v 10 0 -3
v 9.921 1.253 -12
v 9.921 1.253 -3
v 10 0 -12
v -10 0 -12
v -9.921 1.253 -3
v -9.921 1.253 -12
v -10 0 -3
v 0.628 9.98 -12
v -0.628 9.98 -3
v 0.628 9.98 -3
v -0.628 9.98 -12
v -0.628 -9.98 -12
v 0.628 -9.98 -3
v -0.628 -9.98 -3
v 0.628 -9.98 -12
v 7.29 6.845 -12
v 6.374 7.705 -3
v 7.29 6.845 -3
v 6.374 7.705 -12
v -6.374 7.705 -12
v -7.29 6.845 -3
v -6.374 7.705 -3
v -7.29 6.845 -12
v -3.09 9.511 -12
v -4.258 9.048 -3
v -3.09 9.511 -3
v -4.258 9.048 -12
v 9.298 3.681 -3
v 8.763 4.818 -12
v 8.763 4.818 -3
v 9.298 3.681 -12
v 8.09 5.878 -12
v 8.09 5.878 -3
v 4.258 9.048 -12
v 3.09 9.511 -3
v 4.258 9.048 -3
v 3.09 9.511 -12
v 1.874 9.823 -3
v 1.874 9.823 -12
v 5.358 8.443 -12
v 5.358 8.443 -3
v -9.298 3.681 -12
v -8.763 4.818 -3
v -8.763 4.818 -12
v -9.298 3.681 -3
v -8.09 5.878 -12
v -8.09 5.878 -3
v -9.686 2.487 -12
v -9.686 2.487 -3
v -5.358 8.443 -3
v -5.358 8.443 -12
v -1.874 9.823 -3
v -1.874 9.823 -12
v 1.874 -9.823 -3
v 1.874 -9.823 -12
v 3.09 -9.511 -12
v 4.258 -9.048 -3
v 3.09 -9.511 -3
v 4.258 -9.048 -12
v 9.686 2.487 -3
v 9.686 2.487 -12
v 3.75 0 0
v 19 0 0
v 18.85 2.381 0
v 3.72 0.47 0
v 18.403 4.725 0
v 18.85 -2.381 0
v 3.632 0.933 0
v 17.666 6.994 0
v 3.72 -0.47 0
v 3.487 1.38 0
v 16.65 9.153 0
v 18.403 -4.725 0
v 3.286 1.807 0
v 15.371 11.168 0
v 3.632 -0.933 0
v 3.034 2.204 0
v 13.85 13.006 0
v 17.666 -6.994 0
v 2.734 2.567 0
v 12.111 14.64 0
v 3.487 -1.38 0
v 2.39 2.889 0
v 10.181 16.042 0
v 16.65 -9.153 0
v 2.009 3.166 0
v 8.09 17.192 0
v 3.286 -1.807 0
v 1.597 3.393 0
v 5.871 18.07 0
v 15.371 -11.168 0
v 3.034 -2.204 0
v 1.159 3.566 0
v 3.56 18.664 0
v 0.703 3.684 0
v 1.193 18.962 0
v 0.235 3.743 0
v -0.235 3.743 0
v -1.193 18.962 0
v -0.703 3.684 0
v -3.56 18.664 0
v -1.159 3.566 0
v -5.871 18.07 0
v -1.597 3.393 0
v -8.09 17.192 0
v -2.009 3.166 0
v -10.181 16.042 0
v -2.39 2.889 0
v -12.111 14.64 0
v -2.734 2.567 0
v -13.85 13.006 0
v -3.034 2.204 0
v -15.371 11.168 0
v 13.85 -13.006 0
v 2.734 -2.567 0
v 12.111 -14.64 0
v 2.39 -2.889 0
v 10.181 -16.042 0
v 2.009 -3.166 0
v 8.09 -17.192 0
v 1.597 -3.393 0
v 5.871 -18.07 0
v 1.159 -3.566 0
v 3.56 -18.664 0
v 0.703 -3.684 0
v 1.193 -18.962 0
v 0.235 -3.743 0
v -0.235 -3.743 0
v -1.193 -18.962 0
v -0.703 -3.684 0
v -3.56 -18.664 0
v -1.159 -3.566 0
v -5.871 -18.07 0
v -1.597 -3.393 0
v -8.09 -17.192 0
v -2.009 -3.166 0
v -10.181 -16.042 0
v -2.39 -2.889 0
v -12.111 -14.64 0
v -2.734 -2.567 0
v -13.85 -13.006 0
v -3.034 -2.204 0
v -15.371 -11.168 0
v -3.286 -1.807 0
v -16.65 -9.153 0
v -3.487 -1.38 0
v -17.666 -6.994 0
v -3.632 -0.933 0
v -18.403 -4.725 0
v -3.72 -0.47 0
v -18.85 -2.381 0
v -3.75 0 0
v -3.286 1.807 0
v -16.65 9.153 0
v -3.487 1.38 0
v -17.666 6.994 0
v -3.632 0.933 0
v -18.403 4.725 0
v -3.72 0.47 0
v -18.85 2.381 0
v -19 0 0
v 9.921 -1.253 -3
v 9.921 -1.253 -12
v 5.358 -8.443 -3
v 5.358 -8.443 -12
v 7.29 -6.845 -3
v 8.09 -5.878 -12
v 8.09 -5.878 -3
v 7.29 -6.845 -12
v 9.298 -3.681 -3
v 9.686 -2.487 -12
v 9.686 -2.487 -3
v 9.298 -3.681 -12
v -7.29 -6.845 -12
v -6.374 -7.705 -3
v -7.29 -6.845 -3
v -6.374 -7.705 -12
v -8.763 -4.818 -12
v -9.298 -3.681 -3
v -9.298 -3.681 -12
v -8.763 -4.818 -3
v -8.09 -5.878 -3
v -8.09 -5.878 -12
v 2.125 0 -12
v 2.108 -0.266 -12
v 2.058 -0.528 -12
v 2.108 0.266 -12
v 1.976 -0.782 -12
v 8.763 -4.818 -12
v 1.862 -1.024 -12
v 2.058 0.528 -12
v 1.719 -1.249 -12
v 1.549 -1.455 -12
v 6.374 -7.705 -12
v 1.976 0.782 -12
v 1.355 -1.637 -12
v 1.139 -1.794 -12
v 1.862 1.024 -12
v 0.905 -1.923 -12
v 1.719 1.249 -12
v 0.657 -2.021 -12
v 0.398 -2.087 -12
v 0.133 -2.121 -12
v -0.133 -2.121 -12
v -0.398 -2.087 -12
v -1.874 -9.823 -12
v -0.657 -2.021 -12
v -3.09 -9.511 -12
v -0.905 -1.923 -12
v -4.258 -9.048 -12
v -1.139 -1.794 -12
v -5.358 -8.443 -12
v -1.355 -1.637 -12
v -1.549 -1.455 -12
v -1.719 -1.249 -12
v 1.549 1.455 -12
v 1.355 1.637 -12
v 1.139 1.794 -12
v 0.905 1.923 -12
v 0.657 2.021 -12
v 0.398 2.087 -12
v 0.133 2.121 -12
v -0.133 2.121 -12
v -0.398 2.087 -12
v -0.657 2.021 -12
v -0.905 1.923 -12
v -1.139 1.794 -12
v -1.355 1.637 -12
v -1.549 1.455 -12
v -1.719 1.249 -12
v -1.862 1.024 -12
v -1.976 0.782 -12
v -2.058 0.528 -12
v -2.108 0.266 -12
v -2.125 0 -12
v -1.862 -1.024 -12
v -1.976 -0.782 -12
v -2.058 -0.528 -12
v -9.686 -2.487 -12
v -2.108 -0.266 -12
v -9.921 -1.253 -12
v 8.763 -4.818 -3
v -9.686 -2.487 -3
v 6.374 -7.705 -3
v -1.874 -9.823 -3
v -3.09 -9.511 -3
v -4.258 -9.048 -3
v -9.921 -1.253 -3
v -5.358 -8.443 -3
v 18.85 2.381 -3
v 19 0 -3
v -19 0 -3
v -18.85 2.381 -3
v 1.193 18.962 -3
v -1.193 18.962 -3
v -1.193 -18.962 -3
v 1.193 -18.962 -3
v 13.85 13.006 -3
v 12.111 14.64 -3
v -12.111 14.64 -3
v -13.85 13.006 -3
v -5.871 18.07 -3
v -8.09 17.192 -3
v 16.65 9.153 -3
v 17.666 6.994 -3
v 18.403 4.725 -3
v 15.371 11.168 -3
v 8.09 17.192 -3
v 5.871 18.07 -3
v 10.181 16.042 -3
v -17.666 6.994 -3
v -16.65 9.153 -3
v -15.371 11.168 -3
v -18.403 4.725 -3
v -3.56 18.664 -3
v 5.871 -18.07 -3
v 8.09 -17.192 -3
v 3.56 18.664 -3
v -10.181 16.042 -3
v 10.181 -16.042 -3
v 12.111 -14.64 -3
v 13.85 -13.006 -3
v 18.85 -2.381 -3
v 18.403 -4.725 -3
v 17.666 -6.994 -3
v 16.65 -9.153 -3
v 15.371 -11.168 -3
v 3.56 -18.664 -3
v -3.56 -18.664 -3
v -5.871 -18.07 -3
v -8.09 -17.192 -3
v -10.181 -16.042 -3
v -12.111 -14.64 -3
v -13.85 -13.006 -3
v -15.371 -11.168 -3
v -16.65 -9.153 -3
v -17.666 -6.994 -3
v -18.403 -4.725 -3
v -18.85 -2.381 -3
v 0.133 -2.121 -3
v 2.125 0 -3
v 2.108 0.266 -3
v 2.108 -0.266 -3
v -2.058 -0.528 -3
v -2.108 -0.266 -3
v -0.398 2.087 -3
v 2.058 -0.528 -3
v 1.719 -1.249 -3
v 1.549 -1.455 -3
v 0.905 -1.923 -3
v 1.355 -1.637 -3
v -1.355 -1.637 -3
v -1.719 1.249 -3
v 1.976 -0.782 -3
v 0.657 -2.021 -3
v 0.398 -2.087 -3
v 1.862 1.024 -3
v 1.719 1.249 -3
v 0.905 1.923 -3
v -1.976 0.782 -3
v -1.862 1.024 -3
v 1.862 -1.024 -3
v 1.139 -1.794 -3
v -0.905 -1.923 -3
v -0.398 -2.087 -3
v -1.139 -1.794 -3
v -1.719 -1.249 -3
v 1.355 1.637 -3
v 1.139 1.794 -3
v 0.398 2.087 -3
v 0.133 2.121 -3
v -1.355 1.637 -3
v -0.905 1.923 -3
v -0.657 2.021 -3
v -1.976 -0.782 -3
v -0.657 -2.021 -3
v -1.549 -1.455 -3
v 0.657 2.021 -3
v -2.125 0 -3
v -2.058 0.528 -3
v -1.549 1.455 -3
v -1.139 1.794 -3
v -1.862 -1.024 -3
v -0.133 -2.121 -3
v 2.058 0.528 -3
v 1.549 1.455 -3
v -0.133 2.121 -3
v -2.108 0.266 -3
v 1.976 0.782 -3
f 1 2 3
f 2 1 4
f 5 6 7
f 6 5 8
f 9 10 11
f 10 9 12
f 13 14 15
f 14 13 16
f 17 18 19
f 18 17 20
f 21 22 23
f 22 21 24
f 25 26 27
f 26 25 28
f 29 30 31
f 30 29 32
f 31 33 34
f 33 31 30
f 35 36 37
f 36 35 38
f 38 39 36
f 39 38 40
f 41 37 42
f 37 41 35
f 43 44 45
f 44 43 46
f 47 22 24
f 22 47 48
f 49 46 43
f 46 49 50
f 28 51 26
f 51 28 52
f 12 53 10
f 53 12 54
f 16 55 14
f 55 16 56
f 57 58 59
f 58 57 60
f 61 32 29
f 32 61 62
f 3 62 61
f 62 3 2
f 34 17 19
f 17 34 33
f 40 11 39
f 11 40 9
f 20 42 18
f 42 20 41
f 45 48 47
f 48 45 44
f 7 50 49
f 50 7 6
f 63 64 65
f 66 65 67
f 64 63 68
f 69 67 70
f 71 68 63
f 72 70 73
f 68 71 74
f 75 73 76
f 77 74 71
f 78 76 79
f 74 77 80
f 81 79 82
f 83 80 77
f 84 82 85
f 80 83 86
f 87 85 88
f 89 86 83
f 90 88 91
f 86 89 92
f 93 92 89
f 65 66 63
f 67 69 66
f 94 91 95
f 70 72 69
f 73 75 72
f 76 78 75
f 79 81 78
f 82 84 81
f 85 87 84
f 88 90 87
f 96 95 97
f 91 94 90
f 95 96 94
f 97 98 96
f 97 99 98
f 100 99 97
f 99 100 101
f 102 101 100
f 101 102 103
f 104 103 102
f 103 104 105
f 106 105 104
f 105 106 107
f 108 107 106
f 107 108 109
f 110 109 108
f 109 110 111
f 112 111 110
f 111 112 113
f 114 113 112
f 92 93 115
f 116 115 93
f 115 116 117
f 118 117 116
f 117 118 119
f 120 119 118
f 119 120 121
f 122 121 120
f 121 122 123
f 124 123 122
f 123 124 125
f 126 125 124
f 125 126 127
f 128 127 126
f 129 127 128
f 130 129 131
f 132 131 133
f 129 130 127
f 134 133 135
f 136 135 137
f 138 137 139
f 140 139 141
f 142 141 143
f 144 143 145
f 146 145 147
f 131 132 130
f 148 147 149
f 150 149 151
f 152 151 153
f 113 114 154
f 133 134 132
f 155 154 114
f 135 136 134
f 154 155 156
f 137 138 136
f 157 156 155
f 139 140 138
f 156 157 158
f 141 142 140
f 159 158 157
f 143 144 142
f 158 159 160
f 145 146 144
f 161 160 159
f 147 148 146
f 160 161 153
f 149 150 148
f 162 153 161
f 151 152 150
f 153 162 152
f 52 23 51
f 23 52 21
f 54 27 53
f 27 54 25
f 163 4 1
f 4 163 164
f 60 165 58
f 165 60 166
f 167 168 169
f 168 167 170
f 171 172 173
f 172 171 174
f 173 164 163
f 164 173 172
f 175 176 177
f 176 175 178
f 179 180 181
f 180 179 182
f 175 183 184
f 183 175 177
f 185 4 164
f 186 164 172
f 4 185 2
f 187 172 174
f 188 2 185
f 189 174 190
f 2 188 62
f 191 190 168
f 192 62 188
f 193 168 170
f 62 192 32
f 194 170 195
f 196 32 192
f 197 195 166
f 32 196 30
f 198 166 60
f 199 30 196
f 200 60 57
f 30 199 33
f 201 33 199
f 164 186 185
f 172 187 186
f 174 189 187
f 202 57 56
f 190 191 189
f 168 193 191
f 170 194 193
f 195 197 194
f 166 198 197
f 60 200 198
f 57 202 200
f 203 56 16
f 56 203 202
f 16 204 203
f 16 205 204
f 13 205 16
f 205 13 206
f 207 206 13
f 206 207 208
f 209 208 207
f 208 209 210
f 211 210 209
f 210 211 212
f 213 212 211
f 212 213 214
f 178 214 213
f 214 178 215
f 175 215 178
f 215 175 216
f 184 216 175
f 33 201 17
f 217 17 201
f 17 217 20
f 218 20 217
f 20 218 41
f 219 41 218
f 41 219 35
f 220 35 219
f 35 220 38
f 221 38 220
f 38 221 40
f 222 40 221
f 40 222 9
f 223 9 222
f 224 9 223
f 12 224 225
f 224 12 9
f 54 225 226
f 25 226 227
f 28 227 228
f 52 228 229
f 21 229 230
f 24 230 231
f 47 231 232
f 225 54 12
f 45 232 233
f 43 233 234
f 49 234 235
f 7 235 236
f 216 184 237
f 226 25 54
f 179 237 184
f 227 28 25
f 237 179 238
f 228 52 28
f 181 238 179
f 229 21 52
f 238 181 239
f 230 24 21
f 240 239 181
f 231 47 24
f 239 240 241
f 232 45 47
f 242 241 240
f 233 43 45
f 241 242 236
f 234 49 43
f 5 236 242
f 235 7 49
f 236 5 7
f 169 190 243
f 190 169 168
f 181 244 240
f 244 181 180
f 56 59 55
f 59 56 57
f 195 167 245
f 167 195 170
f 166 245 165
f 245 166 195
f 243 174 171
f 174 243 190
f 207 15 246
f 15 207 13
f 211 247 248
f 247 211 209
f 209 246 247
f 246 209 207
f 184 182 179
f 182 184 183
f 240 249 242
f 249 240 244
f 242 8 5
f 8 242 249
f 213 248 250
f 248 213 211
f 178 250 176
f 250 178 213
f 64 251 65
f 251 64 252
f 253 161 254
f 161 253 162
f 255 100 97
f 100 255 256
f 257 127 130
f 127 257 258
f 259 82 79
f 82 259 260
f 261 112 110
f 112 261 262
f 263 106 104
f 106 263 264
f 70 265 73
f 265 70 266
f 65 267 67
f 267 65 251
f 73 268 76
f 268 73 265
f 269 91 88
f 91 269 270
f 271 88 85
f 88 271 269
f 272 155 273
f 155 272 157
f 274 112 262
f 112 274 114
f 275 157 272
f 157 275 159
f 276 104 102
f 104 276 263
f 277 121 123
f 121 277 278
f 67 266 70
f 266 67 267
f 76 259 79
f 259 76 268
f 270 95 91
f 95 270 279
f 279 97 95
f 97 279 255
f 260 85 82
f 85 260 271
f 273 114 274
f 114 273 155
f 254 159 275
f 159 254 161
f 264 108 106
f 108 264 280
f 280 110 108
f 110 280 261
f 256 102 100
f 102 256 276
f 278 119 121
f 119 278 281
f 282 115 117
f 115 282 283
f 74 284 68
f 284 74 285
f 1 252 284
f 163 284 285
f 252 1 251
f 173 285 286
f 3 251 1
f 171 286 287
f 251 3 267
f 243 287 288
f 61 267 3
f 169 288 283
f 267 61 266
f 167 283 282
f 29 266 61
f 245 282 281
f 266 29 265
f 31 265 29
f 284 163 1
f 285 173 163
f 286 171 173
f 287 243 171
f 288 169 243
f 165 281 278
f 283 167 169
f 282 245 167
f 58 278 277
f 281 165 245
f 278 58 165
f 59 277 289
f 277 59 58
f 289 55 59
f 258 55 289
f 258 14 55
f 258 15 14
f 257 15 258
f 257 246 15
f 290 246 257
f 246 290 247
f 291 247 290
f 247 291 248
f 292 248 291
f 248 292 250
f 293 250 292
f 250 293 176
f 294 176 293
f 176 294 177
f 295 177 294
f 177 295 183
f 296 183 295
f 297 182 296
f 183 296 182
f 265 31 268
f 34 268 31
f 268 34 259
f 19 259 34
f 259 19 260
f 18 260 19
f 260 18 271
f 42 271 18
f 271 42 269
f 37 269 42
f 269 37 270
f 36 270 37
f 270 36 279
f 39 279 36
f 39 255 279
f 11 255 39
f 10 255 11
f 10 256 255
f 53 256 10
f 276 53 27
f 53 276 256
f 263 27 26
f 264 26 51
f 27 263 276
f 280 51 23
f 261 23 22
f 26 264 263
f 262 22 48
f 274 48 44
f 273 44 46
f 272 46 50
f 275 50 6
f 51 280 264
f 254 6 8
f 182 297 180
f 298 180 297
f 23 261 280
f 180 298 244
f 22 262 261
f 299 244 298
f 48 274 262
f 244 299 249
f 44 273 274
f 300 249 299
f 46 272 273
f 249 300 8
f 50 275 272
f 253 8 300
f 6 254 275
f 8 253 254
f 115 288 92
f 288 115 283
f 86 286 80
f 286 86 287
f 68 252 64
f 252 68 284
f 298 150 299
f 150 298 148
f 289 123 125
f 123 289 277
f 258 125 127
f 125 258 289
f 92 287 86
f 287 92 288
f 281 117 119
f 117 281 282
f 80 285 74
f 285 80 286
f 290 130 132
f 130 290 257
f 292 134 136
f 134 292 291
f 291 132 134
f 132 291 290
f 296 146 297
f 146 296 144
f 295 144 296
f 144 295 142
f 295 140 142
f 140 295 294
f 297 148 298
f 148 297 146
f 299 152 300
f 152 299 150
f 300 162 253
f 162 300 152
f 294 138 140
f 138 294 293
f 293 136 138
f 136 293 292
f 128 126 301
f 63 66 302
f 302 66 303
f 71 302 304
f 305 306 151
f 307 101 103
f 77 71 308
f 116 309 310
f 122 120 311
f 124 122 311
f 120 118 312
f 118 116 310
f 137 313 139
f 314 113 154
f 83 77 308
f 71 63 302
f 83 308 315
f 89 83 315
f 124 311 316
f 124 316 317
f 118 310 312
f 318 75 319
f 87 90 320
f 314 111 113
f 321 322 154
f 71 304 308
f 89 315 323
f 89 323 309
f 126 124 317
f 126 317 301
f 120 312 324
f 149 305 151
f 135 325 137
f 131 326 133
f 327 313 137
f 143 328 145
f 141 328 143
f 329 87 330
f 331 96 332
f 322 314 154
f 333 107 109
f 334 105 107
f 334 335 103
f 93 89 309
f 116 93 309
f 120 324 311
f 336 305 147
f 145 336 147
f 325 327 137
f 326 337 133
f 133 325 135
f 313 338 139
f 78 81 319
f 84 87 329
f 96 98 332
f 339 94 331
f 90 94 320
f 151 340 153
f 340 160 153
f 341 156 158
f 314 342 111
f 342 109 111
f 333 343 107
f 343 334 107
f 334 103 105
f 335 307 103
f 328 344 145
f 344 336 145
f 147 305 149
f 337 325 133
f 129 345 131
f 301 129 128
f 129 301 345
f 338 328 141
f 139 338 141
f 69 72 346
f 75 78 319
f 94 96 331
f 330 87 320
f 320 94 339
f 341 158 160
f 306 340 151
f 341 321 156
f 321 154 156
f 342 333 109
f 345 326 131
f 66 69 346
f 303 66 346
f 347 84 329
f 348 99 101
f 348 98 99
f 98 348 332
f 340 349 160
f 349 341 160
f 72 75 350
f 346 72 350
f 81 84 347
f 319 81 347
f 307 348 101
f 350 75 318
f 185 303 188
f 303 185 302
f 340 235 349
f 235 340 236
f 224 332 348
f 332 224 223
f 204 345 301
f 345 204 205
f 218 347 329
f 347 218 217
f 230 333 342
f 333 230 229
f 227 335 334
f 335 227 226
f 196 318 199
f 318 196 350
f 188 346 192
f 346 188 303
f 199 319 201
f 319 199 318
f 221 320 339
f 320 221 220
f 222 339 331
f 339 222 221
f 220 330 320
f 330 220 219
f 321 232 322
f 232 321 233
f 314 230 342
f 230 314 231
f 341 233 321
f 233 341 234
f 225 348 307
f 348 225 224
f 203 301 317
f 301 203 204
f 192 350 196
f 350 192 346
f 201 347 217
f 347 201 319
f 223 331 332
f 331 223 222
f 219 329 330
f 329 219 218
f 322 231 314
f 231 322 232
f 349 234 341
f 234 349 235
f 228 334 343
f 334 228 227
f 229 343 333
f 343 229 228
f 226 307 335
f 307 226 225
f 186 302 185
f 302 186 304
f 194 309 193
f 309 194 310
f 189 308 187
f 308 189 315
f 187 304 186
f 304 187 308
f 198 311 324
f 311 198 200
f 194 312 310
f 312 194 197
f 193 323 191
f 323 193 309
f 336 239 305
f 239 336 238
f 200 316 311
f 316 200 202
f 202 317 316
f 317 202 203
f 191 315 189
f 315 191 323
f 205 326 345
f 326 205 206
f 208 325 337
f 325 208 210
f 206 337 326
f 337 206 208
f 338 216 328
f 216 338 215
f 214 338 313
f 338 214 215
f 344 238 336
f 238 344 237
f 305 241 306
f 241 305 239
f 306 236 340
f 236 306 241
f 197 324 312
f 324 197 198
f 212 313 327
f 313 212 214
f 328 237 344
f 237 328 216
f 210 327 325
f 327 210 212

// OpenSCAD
$fn = 50;


difference() {
	union() {
		translate(v = [0, 0, -12.0000000000]) {
			cylinder(h = 12, r = 10.0000000000);
		}
		translate(v = [0, 0, -3.0000000000]) {
			cylinder(h = 3, r = 19.0000000000);
		}
	}
	union() {
		translate(v = [0, 0, 0]) {
			rotate(a = [0, 0, 0]) {
				difference() {
					union() {
						#translate(v = [0, 0, -12.0000000000]) {
							cylinder(h = 12, r = 2.0000000000);
						}
						#translate(v = [0, 0, -3]) {
							cylinder(h = 3, r1 = 2.1250000000, r2 = 3.7500000000);
						}
						#translate(v = [0, 0, -12.0000000000]) {
							cylinder(h = 12, r = 2.1250000000);
						}
						#translate(v = [0, 0, -12.0000000000]) {
							cylinder(h = 12, r = 2.0000000000);
						}
					}
					union();
				}
			}
		}
	}
}
